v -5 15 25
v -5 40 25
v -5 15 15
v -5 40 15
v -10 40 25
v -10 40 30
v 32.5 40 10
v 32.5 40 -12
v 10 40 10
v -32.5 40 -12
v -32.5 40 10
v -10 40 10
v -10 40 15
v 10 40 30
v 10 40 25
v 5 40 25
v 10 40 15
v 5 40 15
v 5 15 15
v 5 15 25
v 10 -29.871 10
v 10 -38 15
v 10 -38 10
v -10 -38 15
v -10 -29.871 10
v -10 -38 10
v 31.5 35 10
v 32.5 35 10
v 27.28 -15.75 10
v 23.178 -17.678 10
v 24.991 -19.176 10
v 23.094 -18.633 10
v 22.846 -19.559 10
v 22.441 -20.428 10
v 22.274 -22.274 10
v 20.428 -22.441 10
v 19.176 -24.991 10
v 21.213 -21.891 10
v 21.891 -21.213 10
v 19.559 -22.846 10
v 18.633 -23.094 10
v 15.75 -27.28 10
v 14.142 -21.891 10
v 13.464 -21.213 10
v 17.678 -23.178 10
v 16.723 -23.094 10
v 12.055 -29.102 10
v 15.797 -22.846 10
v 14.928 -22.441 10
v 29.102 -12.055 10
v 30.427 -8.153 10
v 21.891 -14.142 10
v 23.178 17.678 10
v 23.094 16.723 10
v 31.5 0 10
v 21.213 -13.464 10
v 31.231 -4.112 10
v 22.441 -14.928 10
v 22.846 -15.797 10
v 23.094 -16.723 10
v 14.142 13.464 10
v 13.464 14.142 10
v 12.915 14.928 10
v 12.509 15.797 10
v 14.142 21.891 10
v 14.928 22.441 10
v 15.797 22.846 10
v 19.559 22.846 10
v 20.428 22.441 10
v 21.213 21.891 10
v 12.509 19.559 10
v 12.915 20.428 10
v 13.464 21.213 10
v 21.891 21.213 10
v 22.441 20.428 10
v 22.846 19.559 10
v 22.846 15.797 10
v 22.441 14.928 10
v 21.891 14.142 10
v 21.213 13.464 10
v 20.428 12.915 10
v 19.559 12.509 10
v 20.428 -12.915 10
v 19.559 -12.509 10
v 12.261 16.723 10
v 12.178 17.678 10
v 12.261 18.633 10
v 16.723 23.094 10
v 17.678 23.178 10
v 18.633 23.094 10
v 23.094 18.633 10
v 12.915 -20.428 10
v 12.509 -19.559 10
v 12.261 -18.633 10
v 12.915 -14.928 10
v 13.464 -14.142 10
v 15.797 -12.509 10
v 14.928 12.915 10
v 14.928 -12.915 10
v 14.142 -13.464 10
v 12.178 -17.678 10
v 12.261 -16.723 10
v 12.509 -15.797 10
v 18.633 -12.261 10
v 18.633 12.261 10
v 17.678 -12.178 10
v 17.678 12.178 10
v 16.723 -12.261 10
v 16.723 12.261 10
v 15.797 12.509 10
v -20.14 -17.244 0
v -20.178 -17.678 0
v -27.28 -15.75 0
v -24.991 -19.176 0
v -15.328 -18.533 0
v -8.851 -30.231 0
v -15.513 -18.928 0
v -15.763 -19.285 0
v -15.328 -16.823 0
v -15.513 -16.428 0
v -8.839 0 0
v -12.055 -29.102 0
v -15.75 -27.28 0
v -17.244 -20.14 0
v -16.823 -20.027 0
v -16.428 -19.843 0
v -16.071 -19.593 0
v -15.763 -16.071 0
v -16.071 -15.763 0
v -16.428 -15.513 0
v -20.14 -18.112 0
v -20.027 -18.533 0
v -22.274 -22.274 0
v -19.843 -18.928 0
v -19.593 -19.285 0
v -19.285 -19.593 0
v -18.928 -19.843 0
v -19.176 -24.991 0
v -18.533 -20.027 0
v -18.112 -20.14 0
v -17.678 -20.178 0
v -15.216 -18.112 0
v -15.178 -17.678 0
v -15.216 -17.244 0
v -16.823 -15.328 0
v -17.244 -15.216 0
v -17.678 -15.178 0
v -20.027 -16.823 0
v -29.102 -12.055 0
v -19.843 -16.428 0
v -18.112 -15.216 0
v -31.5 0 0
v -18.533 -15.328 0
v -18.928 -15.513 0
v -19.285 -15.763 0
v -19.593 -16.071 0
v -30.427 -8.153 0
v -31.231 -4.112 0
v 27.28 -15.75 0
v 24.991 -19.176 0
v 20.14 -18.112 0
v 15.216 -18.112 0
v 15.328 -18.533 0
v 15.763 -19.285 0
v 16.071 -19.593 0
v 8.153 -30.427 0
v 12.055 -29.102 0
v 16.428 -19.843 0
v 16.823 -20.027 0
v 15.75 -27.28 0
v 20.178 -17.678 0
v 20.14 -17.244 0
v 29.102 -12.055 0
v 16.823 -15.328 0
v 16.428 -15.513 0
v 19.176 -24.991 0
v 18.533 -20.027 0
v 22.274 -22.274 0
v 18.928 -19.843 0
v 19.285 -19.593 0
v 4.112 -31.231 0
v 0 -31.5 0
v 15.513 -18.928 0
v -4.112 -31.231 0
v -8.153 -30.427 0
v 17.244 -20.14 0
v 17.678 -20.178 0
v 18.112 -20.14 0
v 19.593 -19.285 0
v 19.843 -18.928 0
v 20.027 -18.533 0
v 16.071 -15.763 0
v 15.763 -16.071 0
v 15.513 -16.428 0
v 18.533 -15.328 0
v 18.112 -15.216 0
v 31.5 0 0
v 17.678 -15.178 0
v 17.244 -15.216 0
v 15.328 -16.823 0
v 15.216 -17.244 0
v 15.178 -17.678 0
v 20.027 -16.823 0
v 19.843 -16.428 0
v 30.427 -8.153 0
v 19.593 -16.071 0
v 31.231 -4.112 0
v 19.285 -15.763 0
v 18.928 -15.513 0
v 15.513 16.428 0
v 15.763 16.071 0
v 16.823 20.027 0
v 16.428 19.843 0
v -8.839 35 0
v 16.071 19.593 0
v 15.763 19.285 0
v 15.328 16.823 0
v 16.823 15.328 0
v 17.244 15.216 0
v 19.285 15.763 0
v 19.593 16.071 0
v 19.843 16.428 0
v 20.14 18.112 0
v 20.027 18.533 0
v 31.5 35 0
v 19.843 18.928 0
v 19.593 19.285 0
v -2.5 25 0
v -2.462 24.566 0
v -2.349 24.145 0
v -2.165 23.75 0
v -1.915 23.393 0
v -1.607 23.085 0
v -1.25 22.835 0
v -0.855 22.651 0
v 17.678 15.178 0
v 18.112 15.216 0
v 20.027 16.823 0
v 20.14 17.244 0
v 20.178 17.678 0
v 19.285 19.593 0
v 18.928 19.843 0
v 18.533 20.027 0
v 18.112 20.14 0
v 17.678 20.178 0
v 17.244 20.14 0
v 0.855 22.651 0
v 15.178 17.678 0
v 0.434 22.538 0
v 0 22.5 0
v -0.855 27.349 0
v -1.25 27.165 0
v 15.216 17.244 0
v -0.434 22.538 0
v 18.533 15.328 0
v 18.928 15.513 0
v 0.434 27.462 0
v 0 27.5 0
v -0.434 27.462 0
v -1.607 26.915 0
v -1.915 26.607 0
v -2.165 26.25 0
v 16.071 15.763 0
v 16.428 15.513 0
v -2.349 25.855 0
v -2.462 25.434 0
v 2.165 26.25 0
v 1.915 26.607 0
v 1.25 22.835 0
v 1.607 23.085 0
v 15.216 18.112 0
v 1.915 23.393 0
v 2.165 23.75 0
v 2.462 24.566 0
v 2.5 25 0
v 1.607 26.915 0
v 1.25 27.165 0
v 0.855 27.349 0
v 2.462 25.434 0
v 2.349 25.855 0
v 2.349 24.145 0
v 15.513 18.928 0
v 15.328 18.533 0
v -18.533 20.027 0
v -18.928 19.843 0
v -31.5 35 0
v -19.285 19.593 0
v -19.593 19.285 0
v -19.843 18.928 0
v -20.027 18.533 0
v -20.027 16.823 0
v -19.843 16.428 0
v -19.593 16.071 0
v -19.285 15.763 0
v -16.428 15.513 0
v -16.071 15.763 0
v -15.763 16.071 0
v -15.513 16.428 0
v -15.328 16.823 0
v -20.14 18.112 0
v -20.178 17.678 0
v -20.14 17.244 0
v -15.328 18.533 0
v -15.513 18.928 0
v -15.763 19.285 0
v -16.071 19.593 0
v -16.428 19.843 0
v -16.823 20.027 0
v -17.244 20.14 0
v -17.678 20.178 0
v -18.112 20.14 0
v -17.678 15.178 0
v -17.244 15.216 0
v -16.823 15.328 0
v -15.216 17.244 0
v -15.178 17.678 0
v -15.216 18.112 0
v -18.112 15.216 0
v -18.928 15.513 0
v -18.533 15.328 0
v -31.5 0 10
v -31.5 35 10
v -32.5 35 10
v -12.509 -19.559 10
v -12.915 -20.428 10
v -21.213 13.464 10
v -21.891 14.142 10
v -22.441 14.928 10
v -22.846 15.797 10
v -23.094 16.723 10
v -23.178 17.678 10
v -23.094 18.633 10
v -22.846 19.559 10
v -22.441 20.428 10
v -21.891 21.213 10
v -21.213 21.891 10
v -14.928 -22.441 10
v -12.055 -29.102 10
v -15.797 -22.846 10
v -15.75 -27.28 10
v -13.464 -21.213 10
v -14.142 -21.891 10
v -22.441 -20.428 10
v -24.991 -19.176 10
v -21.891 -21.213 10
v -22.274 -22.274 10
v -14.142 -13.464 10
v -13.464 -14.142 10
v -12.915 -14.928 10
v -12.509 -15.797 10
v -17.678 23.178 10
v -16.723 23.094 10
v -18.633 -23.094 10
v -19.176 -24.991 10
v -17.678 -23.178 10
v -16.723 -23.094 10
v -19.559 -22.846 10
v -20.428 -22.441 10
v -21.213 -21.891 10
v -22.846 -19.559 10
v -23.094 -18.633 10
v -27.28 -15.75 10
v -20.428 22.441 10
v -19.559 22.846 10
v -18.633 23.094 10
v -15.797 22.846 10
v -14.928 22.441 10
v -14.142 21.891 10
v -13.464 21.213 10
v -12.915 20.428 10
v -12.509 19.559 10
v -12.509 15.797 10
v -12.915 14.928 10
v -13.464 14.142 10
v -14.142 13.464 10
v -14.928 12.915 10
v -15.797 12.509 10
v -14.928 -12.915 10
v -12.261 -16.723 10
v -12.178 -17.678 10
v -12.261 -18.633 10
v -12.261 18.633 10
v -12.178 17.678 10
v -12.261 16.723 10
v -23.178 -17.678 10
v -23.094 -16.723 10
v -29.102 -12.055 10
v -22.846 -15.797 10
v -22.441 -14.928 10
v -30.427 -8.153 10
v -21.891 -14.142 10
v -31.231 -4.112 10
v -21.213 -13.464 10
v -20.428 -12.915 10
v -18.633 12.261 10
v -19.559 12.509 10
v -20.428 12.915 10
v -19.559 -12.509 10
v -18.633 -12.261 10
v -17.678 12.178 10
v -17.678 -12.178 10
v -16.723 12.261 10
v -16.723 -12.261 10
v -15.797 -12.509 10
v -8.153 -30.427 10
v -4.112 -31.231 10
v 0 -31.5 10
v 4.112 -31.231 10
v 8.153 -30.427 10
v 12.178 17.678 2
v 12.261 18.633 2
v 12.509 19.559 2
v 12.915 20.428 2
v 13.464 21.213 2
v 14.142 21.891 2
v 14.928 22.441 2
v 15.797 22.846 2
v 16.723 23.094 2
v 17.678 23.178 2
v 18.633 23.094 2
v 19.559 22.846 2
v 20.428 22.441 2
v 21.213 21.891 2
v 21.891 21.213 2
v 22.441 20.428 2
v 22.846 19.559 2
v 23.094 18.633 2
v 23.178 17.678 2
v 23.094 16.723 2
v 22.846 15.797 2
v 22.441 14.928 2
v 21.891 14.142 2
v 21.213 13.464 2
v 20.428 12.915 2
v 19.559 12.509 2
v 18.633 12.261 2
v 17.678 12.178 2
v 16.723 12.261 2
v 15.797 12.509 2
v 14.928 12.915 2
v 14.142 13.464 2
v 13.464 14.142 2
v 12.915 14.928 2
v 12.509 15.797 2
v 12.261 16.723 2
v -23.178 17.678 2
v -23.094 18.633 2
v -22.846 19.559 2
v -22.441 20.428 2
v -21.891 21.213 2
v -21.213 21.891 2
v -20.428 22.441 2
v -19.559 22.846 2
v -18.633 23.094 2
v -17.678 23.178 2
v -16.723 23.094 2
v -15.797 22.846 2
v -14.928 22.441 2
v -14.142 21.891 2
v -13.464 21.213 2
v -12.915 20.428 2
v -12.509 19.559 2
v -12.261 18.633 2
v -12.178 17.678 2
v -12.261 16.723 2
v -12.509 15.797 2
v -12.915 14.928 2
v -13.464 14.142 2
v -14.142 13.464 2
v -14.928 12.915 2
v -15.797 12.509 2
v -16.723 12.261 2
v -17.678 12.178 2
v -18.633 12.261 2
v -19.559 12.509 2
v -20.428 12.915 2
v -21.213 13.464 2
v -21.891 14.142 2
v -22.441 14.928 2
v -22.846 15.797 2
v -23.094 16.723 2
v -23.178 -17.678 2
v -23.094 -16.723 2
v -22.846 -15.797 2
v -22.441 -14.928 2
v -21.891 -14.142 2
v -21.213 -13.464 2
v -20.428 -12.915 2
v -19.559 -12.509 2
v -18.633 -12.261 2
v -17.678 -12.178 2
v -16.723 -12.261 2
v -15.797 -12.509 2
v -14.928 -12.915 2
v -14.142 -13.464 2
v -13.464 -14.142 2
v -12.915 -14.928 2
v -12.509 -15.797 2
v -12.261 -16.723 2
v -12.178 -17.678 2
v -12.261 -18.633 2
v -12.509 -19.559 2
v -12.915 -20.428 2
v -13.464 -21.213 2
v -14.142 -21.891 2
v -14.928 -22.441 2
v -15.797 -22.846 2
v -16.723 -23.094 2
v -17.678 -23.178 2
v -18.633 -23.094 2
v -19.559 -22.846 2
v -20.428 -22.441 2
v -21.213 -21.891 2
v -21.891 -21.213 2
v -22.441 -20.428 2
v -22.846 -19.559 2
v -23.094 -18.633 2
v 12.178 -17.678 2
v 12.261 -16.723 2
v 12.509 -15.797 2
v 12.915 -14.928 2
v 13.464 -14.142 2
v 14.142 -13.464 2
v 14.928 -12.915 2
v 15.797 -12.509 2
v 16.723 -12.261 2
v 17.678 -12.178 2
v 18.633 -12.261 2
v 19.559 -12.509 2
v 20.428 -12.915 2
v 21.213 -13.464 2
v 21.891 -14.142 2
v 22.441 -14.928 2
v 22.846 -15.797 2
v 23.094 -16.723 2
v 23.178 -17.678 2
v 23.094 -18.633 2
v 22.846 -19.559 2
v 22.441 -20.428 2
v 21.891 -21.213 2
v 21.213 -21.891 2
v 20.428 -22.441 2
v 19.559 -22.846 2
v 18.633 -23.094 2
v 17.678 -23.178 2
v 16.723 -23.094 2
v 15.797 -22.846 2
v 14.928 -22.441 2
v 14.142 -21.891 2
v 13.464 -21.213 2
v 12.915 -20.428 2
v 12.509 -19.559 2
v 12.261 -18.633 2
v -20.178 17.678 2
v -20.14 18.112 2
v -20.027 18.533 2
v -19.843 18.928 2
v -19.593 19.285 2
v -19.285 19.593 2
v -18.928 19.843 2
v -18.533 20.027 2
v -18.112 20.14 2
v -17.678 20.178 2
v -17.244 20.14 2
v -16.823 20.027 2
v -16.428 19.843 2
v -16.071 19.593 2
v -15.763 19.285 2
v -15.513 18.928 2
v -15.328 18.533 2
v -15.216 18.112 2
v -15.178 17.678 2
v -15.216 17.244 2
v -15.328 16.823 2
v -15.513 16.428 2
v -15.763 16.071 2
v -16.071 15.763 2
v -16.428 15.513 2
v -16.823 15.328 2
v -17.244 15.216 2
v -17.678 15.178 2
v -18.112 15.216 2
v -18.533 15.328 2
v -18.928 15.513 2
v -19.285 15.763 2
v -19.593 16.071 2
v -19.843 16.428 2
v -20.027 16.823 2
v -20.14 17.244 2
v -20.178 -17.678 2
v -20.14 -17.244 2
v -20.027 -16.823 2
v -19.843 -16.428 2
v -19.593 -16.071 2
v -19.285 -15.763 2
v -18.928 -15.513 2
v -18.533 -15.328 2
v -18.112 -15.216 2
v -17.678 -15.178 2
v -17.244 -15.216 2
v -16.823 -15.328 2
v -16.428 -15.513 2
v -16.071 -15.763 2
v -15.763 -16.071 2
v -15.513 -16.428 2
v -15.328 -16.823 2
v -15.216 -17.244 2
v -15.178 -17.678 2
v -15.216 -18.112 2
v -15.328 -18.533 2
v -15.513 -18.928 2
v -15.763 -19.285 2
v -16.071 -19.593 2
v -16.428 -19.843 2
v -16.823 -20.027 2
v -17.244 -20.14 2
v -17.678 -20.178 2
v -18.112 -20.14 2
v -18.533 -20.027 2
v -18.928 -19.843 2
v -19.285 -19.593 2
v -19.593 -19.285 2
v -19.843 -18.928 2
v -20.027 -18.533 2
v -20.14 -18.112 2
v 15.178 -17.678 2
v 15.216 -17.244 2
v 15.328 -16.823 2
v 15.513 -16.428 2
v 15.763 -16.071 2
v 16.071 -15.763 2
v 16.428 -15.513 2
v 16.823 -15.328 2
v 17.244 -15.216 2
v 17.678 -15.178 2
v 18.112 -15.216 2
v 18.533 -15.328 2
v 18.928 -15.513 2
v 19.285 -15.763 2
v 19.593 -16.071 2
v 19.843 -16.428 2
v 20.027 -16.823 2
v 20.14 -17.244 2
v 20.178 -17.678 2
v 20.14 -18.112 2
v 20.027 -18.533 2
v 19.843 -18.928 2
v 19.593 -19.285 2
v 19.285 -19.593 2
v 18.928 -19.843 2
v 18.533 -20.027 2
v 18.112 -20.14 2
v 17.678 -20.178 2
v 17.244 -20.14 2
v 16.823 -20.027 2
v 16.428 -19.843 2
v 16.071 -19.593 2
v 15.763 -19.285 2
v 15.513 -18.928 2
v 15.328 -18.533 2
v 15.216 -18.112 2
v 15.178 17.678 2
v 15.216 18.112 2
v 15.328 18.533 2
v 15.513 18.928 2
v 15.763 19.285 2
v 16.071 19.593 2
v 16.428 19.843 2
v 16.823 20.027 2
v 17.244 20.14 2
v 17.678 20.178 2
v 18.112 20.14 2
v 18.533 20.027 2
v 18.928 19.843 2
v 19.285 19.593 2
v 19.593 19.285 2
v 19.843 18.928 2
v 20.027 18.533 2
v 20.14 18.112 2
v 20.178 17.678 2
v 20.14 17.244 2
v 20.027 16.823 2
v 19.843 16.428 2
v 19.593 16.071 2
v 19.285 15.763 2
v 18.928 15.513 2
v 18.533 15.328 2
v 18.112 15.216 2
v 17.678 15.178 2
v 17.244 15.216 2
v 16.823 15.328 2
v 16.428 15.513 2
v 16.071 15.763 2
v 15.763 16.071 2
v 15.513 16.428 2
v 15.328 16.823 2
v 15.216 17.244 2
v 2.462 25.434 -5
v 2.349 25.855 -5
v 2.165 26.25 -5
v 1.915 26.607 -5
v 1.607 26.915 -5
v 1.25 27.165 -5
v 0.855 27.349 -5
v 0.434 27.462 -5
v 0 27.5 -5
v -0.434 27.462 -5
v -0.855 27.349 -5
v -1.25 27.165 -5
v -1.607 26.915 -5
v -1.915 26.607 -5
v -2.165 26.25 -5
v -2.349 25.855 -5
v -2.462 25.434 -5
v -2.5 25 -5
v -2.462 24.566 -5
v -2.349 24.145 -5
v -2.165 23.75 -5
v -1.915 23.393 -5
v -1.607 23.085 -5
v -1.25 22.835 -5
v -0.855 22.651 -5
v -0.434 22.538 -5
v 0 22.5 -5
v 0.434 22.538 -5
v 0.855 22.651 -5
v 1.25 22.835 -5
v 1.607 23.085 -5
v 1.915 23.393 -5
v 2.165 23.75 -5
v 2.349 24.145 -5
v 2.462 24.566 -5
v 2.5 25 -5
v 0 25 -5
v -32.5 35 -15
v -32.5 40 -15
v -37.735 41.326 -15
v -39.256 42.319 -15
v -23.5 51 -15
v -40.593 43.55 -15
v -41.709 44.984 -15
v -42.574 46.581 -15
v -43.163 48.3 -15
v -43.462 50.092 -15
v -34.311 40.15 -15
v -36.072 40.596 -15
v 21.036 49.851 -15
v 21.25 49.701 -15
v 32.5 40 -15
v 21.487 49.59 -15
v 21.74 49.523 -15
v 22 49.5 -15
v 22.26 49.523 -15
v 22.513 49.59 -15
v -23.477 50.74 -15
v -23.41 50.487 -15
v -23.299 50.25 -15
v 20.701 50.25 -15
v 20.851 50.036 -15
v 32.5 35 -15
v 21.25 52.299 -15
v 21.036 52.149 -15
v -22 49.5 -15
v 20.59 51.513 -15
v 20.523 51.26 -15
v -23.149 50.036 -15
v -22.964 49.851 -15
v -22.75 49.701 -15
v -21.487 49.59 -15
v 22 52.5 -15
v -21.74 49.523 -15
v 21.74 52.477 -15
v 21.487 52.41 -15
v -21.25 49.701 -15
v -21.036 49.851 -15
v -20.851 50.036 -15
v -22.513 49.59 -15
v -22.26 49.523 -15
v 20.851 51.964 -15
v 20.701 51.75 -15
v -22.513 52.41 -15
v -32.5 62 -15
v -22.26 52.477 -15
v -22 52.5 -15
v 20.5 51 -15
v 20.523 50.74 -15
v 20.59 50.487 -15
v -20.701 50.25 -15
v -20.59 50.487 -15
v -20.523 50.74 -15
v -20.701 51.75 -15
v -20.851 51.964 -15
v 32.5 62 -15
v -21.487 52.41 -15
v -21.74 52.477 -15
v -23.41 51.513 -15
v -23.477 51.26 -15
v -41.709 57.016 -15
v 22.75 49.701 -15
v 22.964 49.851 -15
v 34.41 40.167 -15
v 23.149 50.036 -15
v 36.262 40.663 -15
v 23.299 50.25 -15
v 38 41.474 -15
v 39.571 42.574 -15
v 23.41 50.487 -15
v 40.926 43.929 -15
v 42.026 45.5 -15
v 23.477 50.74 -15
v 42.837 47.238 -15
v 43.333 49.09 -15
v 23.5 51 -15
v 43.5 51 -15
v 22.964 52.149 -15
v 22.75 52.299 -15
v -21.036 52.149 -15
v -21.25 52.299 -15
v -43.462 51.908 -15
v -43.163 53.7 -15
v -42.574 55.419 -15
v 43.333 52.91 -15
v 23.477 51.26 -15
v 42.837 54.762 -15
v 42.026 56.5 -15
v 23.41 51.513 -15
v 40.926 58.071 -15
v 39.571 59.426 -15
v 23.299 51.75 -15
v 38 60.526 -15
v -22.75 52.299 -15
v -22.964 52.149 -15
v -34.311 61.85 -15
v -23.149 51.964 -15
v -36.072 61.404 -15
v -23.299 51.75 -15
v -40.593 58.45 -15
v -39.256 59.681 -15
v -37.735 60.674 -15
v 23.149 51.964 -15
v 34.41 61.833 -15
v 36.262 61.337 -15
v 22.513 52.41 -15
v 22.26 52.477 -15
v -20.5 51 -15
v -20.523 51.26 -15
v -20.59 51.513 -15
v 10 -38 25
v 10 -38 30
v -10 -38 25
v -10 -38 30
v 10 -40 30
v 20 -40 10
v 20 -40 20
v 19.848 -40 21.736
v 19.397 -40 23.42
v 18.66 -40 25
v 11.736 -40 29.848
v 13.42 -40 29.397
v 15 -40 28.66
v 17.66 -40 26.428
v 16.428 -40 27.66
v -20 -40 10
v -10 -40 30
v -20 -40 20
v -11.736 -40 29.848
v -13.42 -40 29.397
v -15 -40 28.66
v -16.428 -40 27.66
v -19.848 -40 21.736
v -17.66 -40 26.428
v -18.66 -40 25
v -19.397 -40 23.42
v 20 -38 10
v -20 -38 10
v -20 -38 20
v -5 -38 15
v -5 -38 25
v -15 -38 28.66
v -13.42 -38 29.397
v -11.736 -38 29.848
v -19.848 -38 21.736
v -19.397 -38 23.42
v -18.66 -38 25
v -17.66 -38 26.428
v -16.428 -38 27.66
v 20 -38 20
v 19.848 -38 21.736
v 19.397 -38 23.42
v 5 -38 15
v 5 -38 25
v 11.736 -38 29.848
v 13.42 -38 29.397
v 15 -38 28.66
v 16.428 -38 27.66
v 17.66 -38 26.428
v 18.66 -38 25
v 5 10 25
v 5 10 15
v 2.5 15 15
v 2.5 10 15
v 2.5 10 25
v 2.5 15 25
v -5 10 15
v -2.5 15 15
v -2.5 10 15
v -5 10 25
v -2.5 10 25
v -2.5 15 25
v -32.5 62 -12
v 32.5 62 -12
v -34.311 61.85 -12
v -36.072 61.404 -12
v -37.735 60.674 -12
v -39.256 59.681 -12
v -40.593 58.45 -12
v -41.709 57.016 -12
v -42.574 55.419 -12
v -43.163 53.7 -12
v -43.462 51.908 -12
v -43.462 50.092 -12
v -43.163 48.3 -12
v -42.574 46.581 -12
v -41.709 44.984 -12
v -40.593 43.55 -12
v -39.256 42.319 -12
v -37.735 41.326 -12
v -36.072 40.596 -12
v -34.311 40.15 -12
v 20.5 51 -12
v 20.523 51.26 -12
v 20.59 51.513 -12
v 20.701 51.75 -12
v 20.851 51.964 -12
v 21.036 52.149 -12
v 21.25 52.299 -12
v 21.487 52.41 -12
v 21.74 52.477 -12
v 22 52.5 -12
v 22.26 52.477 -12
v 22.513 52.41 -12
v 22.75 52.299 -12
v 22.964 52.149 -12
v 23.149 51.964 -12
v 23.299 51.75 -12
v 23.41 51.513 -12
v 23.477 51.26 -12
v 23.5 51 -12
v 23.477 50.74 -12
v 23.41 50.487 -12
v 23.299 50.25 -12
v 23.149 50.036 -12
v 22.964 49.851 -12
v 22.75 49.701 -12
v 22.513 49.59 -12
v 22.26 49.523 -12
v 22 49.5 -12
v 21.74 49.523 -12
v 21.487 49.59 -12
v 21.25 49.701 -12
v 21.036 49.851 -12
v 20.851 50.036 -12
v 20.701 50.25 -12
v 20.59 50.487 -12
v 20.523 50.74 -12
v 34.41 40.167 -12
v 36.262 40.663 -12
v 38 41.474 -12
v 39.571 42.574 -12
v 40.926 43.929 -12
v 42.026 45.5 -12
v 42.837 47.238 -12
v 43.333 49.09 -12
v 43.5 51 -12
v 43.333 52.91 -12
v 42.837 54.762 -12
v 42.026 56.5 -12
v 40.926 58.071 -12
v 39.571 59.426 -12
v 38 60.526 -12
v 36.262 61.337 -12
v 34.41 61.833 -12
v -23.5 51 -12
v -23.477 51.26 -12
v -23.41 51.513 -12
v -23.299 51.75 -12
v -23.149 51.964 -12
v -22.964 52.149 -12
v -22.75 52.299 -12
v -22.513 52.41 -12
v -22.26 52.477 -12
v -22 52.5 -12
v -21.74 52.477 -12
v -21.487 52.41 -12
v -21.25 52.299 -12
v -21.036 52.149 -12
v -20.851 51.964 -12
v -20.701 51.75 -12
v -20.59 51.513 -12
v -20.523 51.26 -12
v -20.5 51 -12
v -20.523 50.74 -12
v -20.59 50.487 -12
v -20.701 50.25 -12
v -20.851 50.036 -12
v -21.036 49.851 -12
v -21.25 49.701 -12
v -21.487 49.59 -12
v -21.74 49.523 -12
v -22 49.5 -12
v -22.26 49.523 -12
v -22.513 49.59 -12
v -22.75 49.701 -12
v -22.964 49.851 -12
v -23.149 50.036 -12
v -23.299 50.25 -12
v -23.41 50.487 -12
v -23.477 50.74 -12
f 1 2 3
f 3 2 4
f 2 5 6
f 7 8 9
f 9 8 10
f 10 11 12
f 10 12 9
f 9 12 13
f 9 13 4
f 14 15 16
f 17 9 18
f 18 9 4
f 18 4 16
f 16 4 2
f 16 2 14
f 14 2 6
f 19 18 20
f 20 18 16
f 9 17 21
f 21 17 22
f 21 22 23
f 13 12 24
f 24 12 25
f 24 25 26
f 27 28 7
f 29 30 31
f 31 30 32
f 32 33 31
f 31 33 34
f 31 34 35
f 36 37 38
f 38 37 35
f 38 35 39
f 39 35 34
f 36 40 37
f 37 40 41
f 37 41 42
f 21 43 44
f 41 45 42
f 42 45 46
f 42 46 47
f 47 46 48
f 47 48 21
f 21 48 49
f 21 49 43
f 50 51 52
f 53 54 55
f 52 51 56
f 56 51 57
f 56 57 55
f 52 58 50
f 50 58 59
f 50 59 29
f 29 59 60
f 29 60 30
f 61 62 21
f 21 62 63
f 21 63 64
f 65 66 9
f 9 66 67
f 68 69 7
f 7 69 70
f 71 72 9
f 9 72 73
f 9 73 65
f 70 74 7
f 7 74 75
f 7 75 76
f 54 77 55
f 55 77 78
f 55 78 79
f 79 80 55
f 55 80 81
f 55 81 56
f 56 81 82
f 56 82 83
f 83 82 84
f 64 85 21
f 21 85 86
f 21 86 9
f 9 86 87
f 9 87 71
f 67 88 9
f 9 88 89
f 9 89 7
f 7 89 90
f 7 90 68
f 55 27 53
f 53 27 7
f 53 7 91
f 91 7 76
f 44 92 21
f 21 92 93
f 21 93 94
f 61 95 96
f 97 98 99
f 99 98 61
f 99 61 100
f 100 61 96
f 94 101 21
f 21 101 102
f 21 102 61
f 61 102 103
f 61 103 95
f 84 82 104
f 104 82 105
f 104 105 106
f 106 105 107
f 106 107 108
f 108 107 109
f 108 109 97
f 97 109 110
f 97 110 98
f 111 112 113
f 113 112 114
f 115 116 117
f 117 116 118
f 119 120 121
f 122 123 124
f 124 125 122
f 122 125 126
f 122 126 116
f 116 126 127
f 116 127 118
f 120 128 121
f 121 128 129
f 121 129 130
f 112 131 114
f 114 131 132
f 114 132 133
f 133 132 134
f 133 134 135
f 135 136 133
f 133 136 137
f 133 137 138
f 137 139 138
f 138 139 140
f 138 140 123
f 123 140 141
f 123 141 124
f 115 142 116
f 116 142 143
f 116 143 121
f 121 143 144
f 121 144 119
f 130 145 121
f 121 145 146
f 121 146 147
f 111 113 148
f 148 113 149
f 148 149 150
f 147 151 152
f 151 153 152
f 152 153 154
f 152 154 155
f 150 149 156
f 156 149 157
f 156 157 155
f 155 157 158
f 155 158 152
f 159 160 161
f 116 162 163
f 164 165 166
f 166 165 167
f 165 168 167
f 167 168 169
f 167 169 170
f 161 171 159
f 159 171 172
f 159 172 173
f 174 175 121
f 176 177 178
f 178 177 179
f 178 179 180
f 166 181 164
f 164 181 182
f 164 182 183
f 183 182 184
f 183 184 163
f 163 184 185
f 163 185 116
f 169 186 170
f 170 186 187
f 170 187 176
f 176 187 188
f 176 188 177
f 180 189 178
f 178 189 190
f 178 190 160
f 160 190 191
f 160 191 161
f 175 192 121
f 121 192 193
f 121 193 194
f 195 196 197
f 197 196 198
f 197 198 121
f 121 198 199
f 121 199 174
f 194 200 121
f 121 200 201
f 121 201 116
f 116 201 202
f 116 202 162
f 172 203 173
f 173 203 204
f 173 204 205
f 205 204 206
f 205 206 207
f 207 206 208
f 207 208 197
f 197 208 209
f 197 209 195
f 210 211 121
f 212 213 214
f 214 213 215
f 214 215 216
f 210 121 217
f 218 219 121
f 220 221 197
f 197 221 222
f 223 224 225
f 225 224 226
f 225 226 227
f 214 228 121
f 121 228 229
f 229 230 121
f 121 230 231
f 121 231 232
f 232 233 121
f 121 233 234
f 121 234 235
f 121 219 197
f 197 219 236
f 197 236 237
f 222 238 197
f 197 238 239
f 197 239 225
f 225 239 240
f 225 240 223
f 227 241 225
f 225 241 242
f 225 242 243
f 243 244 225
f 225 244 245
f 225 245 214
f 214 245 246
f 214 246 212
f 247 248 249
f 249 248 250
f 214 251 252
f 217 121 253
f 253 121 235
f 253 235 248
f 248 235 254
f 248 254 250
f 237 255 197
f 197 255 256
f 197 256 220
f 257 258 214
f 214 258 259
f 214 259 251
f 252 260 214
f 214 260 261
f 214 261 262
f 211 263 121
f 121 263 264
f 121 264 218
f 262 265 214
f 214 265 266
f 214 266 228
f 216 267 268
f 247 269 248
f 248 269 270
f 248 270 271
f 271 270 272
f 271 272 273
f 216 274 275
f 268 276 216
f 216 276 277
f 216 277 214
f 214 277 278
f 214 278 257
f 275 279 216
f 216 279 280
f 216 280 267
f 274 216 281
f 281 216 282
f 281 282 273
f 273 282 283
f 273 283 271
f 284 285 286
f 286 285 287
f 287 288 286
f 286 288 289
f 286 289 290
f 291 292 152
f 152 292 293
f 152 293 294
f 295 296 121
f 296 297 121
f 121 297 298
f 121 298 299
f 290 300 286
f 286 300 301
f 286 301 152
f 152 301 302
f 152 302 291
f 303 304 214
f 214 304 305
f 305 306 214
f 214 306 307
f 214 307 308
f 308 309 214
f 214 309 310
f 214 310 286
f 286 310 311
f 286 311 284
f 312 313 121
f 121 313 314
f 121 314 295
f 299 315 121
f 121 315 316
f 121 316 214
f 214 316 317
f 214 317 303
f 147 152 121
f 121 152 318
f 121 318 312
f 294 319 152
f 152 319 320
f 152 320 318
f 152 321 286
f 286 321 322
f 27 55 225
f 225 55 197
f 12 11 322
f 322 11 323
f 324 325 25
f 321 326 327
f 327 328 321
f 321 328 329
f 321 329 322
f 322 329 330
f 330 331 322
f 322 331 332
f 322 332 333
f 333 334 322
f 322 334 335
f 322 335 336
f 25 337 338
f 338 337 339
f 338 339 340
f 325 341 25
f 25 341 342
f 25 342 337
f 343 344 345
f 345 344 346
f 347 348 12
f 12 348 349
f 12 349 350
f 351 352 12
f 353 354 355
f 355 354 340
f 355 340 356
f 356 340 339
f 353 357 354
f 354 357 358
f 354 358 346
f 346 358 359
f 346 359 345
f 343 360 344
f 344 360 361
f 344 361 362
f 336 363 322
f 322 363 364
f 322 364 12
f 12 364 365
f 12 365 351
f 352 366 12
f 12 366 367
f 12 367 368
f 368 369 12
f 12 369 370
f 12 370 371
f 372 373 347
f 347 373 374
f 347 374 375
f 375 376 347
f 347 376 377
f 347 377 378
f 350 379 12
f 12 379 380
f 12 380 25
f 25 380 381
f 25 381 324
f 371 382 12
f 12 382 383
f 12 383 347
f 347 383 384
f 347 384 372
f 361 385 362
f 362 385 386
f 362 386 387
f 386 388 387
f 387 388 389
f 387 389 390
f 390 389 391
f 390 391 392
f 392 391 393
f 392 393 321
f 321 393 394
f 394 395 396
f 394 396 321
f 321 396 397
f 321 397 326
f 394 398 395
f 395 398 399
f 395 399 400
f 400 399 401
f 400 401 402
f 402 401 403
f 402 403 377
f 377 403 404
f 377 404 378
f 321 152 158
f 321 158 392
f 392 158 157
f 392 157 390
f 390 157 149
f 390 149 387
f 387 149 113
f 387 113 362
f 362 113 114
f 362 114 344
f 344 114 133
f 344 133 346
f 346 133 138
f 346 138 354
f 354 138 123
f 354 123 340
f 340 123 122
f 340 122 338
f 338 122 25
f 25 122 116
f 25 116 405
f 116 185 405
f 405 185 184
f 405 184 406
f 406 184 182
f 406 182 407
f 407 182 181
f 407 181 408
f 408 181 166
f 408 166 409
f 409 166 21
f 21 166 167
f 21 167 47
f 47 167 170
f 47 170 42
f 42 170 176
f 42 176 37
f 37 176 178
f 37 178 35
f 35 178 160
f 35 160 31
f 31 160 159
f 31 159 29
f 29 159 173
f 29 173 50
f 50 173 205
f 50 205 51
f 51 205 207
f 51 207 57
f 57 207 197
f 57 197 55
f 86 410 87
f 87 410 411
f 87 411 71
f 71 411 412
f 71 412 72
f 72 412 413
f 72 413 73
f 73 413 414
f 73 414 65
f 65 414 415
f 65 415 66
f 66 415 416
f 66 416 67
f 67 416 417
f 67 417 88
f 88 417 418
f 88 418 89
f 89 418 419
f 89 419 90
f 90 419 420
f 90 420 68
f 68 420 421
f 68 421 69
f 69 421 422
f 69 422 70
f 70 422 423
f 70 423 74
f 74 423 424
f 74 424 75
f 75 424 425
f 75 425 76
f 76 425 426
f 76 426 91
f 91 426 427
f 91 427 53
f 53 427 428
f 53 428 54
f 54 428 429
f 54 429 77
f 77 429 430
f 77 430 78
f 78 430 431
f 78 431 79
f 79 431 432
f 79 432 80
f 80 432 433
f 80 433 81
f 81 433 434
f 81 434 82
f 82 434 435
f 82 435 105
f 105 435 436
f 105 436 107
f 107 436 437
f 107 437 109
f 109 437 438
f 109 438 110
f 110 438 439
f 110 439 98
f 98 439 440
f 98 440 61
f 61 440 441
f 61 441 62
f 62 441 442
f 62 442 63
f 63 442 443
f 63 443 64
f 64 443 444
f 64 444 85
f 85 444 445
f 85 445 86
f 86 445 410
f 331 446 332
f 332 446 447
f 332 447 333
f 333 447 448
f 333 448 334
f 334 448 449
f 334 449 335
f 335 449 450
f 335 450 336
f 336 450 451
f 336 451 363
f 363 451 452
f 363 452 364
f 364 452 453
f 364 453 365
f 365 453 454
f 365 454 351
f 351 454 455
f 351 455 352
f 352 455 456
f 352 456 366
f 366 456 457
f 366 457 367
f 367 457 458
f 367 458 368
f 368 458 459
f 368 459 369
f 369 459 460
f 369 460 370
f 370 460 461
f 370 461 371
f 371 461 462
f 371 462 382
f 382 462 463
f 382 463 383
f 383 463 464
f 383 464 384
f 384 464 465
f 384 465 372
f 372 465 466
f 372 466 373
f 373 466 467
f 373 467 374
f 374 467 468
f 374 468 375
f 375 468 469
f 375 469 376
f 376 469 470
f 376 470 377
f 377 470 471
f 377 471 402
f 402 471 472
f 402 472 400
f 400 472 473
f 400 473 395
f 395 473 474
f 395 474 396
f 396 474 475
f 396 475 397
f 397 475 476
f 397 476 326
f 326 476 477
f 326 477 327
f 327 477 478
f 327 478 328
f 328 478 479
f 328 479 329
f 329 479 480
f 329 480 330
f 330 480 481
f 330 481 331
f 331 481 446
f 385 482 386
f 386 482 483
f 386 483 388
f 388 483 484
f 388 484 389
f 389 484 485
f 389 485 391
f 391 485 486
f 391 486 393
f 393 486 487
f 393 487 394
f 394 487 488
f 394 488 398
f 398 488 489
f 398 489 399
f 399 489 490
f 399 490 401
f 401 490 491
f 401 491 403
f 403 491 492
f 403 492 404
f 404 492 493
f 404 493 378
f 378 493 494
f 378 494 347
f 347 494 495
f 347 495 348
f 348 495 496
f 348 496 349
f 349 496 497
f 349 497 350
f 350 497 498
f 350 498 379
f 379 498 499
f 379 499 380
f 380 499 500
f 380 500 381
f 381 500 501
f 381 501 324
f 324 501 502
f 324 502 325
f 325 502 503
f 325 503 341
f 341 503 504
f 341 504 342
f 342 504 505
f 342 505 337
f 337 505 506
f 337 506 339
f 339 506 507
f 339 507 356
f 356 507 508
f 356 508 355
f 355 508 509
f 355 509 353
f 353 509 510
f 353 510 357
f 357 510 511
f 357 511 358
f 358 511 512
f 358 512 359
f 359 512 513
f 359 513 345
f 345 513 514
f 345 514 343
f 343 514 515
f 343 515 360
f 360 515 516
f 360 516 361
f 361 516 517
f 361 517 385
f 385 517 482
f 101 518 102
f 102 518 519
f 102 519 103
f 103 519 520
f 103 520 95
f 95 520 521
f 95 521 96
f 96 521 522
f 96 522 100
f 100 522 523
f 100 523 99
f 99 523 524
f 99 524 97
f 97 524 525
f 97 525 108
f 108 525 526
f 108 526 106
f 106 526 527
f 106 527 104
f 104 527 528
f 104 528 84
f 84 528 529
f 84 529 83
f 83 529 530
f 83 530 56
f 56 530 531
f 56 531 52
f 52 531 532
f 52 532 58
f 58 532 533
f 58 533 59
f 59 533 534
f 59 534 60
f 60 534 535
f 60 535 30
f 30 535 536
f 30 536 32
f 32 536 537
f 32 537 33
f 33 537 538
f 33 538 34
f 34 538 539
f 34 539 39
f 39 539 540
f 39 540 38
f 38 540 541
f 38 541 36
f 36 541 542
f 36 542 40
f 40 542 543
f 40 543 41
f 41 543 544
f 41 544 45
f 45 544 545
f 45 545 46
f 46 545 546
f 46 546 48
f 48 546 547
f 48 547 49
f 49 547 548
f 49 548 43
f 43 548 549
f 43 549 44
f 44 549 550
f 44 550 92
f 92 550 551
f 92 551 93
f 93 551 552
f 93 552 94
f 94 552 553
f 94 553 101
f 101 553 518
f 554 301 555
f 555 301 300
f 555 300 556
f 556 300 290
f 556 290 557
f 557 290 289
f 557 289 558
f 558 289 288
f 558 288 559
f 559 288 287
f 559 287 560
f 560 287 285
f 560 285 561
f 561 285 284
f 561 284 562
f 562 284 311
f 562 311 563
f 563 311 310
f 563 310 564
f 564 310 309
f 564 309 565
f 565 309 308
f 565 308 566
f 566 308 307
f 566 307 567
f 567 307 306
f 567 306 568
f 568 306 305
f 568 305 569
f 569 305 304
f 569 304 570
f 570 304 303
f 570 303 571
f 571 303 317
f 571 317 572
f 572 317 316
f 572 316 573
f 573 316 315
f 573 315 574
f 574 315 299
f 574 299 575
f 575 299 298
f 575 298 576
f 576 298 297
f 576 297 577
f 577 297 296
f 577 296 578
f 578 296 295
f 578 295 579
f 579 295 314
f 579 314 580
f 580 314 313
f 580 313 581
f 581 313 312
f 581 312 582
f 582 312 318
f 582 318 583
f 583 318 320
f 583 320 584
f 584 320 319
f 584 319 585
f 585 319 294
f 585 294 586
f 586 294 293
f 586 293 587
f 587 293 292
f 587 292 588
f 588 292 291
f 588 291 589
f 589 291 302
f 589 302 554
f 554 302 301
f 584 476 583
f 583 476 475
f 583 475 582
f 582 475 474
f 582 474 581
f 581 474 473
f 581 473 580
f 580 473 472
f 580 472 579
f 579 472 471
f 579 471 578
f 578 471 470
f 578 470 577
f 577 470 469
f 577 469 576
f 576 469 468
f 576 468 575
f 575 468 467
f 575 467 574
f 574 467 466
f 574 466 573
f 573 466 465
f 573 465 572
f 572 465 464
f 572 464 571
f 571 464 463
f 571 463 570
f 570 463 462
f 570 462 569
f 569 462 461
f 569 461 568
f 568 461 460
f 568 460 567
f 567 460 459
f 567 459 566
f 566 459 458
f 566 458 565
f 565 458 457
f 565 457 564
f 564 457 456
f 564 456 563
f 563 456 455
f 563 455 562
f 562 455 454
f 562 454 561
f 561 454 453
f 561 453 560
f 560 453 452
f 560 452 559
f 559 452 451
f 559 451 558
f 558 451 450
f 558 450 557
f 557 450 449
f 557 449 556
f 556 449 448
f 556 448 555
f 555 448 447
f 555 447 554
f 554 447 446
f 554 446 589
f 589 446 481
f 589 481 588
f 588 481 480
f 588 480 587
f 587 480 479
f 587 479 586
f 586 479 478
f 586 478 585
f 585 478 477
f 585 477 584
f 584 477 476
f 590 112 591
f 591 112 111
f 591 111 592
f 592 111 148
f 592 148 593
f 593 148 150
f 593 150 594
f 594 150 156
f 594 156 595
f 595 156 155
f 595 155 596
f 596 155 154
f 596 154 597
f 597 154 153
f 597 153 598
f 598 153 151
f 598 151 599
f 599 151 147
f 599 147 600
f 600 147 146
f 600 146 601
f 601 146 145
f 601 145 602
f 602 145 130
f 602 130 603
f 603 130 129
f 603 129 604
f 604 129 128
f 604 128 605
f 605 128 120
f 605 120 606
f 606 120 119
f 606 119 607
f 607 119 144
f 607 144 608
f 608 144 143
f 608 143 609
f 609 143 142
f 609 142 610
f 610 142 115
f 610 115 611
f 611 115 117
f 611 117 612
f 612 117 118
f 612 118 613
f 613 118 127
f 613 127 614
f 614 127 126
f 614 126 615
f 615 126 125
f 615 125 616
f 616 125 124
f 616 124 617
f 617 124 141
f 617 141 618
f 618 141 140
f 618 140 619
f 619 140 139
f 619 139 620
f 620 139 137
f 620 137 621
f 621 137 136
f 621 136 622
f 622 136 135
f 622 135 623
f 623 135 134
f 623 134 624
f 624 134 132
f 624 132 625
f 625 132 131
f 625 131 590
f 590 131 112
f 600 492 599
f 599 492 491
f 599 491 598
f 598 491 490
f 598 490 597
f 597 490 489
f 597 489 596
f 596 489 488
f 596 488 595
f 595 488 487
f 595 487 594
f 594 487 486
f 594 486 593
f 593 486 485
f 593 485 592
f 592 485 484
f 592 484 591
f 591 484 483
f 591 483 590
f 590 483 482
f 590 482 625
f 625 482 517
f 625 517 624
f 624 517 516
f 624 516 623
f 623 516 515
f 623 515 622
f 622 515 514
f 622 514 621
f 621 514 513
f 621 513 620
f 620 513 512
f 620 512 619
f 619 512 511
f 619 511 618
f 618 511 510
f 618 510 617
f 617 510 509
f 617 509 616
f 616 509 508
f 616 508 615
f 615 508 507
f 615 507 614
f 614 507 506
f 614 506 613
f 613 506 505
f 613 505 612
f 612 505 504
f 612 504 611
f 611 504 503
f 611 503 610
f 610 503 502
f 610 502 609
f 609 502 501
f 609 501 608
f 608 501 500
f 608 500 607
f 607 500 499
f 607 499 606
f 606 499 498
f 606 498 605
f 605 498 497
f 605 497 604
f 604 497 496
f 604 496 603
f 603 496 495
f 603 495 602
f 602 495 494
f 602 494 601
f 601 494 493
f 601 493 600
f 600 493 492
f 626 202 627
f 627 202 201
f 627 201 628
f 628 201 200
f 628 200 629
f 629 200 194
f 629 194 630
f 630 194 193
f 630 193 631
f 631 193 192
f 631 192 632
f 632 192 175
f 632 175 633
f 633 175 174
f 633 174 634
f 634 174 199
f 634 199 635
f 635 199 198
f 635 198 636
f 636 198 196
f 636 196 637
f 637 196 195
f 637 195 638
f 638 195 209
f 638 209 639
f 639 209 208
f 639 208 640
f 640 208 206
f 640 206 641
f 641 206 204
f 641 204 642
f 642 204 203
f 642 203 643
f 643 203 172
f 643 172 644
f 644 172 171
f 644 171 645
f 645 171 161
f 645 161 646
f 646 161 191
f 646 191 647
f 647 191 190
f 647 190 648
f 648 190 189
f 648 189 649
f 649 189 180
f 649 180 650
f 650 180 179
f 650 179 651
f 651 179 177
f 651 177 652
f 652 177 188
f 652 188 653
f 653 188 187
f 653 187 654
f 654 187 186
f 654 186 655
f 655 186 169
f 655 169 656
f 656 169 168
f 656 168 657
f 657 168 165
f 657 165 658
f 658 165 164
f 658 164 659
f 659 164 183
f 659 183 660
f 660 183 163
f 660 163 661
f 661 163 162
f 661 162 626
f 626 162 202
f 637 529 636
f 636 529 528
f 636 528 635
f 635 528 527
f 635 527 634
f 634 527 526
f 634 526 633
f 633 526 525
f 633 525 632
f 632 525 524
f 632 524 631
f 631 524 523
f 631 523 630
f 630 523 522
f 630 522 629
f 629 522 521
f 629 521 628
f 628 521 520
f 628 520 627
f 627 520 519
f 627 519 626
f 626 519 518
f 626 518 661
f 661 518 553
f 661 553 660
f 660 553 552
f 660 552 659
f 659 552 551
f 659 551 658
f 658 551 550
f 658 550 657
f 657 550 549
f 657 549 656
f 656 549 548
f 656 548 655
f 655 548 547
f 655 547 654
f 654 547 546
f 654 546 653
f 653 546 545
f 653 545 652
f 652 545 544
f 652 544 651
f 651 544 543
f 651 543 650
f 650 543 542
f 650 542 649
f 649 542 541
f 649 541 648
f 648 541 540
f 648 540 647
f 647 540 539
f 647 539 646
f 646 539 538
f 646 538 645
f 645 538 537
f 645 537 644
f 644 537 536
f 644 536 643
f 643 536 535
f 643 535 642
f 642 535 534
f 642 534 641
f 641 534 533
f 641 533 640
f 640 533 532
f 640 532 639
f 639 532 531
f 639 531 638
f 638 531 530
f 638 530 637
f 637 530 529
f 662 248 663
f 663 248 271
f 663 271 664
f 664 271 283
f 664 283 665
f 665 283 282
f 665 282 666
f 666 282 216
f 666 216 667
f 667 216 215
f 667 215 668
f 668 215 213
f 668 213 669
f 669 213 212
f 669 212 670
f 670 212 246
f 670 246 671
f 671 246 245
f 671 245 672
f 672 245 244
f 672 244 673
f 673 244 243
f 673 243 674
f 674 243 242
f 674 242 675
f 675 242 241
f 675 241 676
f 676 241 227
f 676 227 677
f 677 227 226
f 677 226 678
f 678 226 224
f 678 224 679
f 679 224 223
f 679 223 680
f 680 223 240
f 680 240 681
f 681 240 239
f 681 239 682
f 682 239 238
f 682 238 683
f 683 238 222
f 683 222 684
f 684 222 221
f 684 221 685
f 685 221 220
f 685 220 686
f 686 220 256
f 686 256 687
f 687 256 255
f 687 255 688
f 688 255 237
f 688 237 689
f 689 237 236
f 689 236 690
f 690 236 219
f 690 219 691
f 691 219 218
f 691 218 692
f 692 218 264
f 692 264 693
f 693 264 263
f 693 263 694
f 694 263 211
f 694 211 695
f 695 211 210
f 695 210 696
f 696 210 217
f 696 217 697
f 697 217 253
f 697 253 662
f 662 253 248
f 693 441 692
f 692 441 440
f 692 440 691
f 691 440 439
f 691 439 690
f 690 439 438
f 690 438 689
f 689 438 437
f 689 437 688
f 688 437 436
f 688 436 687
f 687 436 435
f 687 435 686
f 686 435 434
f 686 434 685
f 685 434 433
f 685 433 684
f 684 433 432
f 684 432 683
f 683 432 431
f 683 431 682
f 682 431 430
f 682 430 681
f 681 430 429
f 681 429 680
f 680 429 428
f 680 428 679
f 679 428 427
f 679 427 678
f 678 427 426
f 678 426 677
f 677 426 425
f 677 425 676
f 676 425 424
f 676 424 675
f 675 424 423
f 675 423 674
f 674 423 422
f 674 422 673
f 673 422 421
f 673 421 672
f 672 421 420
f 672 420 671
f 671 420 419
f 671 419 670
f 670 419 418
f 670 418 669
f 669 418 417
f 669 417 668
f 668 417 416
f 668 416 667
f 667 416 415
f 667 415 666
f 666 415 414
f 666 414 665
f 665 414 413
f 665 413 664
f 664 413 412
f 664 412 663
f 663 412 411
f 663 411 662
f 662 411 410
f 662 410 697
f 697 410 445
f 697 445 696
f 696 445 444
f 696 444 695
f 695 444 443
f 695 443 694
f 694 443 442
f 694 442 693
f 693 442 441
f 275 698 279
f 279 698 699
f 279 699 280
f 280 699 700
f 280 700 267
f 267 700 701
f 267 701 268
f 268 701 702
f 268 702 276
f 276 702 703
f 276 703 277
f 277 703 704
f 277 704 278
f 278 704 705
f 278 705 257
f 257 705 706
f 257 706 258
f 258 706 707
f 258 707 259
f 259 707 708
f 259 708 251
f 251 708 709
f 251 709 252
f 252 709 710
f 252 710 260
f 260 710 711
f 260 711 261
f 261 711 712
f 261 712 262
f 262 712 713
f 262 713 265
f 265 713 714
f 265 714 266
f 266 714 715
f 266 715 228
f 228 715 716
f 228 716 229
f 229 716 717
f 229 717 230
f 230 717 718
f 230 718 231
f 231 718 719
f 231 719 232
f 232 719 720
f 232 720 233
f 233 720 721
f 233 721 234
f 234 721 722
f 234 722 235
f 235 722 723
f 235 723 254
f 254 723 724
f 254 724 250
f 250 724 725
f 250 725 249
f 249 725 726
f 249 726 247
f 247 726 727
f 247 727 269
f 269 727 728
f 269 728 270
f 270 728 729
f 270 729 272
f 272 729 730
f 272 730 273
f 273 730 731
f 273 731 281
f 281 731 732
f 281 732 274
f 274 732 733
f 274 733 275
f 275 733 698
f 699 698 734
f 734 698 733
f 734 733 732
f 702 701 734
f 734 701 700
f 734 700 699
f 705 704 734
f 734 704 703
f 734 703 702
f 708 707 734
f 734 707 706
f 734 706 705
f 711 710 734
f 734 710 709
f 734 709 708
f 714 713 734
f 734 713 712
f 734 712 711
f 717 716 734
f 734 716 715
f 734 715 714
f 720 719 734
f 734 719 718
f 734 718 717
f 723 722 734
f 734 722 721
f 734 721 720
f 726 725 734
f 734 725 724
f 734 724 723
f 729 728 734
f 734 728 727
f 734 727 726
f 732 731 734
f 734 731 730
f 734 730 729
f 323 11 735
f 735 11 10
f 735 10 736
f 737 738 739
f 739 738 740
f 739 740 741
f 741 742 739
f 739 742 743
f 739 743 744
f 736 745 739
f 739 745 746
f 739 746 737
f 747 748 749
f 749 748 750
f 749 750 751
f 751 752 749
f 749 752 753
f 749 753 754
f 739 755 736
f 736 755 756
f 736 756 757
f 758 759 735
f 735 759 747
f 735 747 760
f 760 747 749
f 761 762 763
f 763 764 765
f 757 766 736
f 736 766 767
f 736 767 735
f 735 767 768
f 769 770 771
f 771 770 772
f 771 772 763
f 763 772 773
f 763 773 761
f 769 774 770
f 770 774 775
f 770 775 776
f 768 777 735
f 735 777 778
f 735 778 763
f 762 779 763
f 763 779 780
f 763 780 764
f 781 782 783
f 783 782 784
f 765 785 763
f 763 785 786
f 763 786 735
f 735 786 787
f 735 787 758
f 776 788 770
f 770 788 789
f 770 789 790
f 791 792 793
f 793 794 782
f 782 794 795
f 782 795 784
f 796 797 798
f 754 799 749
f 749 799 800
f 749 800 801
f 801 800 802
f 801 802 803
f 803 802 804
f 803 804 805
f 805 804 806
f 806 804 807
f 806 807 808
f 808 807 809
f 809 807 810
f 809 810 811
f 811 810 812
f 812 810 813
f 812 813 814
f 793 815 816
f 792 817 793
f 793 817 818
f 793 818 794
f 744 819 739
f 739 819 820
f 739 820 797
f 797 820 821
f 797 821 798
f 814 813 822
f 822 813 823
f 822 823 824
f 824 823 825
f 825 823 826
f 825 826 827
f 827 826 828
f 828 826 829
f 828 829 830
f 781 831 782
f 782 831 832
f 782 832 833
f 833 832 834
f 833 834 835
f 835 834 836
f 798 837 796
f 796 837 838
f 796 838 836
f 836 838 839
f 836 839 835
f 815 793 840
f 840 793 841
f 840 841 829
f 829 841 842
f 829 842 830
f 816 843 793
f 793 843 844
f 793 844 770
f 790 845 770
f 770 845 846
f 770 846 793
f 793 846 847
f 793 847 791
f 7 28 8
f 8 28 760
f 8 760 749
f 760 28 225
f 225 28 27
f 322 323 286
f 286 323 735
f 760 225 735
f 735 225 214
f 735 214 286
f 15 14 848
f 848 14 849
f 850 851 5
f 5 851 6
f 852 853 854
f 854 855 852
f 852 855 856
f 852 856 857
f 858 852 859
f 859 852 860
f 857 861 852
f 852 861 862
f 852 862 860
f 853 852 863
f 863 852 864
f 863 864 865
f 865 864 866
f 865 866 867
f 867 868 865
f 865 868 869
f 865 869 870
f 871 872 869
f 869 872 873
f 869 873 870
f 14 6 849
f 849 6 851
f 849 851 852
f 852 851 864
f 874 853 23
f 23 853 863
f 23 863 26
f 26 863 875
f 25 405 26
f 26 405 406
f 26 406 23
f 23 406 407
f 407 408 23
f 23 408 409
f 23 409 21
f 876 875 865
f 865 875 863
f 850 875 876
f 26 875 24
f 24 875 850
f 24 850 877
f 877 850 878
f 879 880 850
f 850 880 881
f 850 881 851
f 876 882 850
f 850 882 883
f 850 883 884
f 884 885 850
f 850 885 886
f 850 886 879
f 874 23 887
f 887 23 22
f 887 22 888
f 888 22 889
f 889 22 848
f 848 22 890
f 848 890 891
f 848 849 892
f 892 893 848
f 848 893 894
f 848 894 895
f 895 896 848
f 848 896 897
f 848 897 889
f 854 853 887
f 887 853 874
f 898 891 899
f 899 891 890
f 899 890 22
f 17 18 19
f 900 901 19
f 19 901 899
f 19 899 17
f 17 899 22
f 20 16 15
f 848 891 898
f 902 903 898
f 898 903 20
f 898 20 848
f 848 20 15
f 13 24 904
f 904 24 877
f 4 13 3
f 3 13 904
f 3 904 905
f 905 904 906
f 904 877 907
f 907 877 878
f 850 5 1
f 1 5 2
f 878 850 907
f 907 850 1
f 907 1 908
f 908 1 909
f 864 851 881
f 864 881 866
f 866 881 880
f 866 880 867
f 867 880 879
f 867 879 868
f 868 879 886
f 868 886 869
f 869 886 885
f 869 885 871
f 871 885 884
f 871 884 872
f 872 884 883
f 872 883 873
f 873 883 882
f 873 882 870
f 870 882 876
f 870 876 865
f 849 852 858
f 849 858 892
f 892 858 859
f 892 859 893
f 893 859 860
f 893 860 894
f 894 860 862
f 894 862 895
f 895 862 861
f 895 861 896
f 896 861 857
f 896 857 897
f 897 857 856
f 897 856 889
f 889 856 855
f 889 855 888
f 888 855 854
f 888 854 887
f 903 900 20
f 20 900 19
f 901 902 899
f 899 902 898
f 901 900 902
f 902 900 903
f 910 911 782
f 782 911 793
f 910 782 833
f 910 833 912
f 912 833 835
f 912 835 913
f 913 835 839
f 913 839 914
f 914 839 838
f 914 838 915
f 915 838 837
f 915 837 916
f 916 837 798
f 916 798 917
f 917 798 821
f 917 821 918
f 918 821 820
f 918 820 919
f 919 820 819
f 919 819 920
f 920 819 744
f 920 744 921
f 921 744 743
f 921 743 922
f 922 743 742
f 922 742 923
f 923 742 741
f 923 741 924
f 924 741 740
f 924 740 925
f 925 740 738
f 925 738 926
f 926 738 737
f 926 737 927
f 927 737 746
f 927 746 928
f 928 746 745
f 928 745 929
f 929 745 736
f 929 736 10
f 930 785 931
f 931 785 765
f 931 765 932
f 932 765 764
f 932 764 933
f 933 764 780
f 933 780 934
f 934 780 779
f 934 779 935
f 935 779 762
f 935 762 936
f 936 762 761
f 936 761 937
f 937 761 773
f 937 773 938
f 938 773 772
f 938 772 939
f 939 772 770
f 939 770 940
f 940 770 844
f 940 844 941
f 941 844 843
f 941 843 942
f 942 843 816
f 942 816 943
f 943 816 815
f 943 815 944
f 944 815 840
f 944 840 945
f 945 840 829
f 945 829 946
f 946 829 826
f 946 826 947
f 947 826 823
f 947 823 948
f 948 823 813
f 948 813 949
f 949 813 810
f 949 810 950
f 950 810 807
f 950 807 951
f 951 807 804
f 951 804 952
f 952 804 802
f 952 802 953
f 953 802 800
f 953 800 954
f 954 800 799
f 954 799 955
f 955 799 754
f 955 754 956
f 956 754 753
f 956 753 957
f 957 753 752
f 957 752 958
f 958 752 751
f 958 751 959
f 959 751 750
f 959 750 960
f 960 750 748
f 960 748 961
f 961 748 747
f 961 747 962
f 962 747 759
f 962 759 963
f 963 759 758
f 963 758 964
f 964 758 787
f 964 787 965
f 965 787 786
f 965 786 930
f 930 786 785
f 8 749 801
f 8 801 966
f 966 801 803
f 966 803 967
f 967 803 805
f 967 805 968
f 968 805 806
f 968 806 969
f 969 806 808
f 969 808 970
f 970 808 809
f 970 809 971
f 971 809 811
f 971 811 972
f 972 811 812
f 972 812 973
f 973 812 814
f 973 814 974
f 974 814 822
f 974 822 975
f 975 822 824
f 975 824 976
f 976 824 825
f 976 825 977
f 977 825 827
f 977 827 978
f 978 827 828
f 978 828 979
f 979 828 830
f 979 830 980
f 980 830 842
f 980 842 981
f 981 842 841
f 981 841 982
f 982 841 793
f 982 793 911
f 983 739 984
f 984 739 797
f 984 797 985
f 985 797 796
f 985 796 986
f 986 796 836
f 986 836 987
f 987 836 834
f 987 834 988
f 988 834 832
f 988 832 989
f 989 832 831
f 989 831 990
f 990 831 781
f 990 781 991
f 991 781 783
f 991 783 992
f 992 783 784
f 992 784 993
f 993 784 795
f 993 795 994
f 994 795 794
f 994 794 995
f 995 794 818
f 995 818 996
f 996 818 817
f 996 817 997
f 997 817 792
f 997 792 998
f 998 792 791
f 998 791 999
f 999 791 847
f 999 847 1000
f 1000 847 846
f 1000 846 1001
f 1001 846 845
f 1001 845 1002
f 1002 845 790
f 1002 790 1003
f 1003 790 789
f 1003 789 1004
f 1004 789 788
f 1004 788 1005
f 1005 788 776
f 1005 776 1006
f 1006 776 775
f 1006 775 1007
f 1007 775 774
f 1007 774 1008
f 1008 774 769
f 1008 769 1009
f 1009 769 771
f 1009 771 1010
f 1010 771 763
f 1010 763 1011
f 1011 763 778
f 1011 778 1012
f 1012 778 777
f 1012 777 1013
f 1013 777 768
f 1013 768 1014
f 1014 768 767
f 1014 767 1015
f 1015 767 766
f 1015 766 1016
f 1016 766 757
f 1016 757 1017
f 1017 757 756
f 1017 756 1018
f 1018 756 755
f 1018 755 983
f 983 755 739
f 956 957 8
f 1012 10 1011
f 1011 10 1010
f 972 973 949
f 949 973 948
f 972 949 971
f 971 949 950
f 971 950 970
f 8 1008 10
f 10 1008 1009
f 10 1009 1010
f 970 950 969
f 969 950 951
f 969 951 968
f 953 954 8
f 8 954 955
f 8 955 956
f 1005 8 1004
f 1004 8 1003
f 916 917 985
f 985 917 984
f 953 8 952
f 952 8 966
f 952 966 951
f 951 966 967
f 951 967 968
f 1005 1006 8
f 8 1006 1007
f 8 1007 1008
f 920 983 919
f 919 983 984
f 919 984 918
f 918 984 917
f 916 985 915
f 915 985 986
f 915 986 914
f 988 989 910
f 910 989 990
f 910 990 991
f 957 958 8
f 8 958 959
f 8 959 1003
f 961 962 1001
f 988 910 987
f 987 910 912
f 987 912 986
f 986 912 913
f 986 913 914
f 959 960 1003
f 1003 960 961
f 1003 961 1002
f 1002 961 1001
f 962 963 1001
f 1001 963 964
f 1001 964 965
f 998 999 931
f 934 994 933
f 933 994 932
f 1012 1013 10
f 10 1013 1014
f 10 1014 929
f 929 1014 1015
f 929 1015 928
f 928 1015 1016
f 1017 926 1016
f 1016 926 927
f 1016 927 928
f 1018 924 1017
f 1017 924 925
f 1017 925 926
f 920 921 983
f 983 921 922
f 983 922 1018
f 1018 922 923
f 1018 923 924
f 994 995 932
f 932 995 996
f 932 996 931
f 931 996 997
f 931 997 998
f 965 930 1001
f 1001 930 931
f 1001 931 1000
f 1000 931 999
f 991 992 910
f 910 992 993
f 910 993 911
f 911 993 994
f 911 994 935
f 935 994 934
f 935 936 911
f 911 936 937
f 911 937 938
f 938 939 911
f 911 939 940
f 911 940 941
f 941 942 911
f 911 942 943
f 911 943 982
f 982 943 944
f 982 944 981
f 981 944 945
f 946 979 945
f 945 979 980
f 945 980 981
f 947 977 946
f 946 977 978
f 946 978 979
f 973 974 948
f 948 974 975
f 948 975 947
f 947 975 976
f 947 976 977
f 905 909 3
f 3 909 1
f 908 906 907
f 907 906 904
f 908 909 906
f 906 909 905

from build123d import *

# Parameters (mm, degrees)
SKETCH1_R                = 5.5
BOSS_EXTRUDE1_DEPTH      = 10
SKETCH1_3_R              = 5.5
SKETCH1_3_R_2            = 2.5
BOSS_EXTRUDE2_DEPTH      = 2
SKETCH1_4_R              = 2.5
BOSS_EXTRUDE3_DEPTH      = 5
BOSS_EXTRUDE4_DEPTH      = 5
SKETCH4_W                = 20
SKETCH4_H                = 80
BOSS_EXTRUDE5_DEPTH      = 20
SKETCH5_W                = 20
SKETCH5_H                = 2
BOSS_EXTRUDE6_DEPTH      = 10
BOSS_EXTRUDE6_DEPTH_BACK = 30
SKETCH7_W                = 5
SKETCH7_H                = 10
CUT_EXTRUDE1_DEPTH       = 78
FILLET1_R                = 10
SKETCH9_W                = 10
SKETCH9_H                = 5
CUT_EXTRUDE2_DEPTH       = 2.5
SKETCH14_R               = 1.5
BOSS_EXTRUDE8_DEPTH      = 3
SKETCH16_W               = 10
SKETCH16_H               = 5
CUT_EXTRUDE4_DEPTH       = 2.5


with BuildPart() as part:
    # Sketch1 → Boss-Extrude1 (new body)
    with BuildSketch(Plane.XY):
        with BuildLine():
            Line((31.5, 0), (31.5, 40))
            Line((31.5, 40), (-31.5, 40))
            Line((-31.5, 40), (-31.5, 0))
            ThreePointArc((-31.5, 0), (0, -31.5), (31.5, 0))
        make_face()
        with Locations((17.67766953, -17.67766953)):
            Circle(SKETCH1_R, mode=Mode.SUBTRACT)
        with Locations((-17.67766953, -17.67766953)):
            Circle(SKETCH1_R, mode=Mode.SUBTRACT)
        with Locations((-17.67766953, 17.67766953)):
            Circle(SKETCH1_R, mode=Mode.SUBTRACT)
        with Locations((17.67766953, 17.67766953)):
            Circle(SKETCH1_R, mode=Mode.SUBTRACT)
    extrude(amount=BOSS_EXTRUDE1_DEPTH)

    # Sketch1<3> → Boss-Extrude2 (add)
    with BuildSketch(Plane.XY):
        with Locations((17.67766953, 17.67766953)):
            Circle(SKETCH1_3_R)
        with Locations((17.67766953, 17.67766953)):
            Circle(SKETCH1_3_R_2, mode=Mode.SUBTRACT)
        with Locations((17.67766953, -17.67766953)):
            Circle(SKETCH1_3_R)
        with Locations((17.67766953, -17.67766953)):
            Circle(SKETCH1_3_R_2, mode=Mode.SUBTRACT)
        with Locations((-17.67766953, -17.67766953)):
            Circle(SKETCH1_3_R)
        with Locations((-17.67766953, -17.67766953)):
            Circle(SKETCH1_3_R_2, mode=Mode.SUBTRACT)
        with Locations((-17.67766953, 17.67766953)):
            Circle(SKETCH1_3_R)
        with Locations((-17.67766953, 17.67766953)):
            Circle(SKETCH1_3_R_2, mode=Mode.SUBTRACT)
    extrude(amount=BOSS_EXTRUDE2_DEPTH)

    # Sketch1<4> → Boss-Extrude3 (add)
    with BuildSketch(Plane.XY):
        with Locations((0, 25)):
            Circle(SKETCH1_4_R)
    extrude(amount=-BOSS_EXTRUDE3_DEPTH)

    # Sketch2 → Boss-Extrude4 (add)
    with BuildSketch(Plane(origin=(0, 40, 0), x_dir=(1, 0, 0), z_dir=(0, 1, 0))):
        Polygon((-32.5, -10), (31.5, -10), (32.5, -10), (32.5, 15), (-32.5, 15), align=None)
    extrude(amount=-BOSS_EXTRUDE4_DEPTH)

    # Sketch4 → Boss-Extrude5 (add)
    with BuildSketch(Plane.XY.offset(10)):
        Rectangle(SKETCH4_W, SKETCH4_H)
    extrude(amount=BOSS_EXTRUDE5_DEPTH)

    # Sketch5 → Boss-Extrude6 (add, two sides)
    with BuildSketch(Plane(origin=(10, 0, 0), x_dir=(0, 0, -1), z_dir=(1, 0, 0))) as boss_extrude6_sk:
        with Locations((-20, -39)):
            Rectangle(SKETCH5_W, SKETCH5_H)
    extrude(amount=BOSS_EXTRUDE6_DEPTH)
    extrude(boss_extrude6_sk.sketch, amount=-BOSS_EXTRUDE6_DEPTH_BACK)

    # Sketch7 → Cut-Extrude1 (cut)
    with BuildSketch(Plane(origin=(0, 40, 0), x_dir=(1, 0, 0), z_dir=(0, 1, 0))):
        with Locations((-7.5, -20)):
            Rectangle(SKETCH7_W, SKETCH7_H)
        with Locations((7.5, -20)):
            Rectangle(SKETCH7_W, SKETCH7_H)
    extrude(amount=-CUT_EXTRUDE1_DEPTH, mode=Mode.SUBTRACT)

    # Fillet1
    fillet1_edges = [part.edges().sort_by_distance(p)[0] for p in [
        (-20, -39, 30),
        (20, -39, 30),
    ]]
    fillet(fillet1_edges, radius=FILLET1_R)

    # Sketch9 → Cut-Extrude2 (cut)
    with BuildSketch(Plane(origin=(5, 0, 0), x_dir=(0, 0, -1), z_dir=(1, 0, 0))):
        with Locations((-20, 12.5)):
            Rectangle(SKETCH9_W, SKETCH9_H)
    extrude(amount=-CUT_EXTRUDE2_DEPTH, mode=Mode.SUBTRACT)

    # Sketch14 → Boss-Extrude8 (add)
    with BuildSketch(Plane(origin=(0, 0, -15), x_dir=(-1, 0, 0), z_dir=(0, 0, -1))):
        with BuildLine():
            Line((32.5, 62), (-32.5, 62))
            ThreePointArc((-32.5, 62), (-43.5, 51), (-32.5, 40))
            Line((-32.5, 40), (32.5, 40))
            ThreePointArc((32.5, 40), (43.5, 51), (32.5, 62))
        make_face()
        with Locations((-22, 51)):
            Circle(SKETCH14_R, mode=Mode.SUBTRACT)
        with Locations((22, 51)):
            Circle(SKETCH14_R, mode=Mode.SUBTRACT)
    extrude(amount=-BOSS_EXTRUDE8_DEPTH)

    # Sketch16 → Cut-Extrude4 (cut)
    with BuildSketch(Plane.ZY.offset(5)):
        with Locations((20, 12.5)):
            Rectangle(SKETCH16_W, SKETCH16_H)
    extrude(amount=-CUT_EXTRUDE4_DEPTH, mode=Mode.SUBTRACT)


solid = part.part
